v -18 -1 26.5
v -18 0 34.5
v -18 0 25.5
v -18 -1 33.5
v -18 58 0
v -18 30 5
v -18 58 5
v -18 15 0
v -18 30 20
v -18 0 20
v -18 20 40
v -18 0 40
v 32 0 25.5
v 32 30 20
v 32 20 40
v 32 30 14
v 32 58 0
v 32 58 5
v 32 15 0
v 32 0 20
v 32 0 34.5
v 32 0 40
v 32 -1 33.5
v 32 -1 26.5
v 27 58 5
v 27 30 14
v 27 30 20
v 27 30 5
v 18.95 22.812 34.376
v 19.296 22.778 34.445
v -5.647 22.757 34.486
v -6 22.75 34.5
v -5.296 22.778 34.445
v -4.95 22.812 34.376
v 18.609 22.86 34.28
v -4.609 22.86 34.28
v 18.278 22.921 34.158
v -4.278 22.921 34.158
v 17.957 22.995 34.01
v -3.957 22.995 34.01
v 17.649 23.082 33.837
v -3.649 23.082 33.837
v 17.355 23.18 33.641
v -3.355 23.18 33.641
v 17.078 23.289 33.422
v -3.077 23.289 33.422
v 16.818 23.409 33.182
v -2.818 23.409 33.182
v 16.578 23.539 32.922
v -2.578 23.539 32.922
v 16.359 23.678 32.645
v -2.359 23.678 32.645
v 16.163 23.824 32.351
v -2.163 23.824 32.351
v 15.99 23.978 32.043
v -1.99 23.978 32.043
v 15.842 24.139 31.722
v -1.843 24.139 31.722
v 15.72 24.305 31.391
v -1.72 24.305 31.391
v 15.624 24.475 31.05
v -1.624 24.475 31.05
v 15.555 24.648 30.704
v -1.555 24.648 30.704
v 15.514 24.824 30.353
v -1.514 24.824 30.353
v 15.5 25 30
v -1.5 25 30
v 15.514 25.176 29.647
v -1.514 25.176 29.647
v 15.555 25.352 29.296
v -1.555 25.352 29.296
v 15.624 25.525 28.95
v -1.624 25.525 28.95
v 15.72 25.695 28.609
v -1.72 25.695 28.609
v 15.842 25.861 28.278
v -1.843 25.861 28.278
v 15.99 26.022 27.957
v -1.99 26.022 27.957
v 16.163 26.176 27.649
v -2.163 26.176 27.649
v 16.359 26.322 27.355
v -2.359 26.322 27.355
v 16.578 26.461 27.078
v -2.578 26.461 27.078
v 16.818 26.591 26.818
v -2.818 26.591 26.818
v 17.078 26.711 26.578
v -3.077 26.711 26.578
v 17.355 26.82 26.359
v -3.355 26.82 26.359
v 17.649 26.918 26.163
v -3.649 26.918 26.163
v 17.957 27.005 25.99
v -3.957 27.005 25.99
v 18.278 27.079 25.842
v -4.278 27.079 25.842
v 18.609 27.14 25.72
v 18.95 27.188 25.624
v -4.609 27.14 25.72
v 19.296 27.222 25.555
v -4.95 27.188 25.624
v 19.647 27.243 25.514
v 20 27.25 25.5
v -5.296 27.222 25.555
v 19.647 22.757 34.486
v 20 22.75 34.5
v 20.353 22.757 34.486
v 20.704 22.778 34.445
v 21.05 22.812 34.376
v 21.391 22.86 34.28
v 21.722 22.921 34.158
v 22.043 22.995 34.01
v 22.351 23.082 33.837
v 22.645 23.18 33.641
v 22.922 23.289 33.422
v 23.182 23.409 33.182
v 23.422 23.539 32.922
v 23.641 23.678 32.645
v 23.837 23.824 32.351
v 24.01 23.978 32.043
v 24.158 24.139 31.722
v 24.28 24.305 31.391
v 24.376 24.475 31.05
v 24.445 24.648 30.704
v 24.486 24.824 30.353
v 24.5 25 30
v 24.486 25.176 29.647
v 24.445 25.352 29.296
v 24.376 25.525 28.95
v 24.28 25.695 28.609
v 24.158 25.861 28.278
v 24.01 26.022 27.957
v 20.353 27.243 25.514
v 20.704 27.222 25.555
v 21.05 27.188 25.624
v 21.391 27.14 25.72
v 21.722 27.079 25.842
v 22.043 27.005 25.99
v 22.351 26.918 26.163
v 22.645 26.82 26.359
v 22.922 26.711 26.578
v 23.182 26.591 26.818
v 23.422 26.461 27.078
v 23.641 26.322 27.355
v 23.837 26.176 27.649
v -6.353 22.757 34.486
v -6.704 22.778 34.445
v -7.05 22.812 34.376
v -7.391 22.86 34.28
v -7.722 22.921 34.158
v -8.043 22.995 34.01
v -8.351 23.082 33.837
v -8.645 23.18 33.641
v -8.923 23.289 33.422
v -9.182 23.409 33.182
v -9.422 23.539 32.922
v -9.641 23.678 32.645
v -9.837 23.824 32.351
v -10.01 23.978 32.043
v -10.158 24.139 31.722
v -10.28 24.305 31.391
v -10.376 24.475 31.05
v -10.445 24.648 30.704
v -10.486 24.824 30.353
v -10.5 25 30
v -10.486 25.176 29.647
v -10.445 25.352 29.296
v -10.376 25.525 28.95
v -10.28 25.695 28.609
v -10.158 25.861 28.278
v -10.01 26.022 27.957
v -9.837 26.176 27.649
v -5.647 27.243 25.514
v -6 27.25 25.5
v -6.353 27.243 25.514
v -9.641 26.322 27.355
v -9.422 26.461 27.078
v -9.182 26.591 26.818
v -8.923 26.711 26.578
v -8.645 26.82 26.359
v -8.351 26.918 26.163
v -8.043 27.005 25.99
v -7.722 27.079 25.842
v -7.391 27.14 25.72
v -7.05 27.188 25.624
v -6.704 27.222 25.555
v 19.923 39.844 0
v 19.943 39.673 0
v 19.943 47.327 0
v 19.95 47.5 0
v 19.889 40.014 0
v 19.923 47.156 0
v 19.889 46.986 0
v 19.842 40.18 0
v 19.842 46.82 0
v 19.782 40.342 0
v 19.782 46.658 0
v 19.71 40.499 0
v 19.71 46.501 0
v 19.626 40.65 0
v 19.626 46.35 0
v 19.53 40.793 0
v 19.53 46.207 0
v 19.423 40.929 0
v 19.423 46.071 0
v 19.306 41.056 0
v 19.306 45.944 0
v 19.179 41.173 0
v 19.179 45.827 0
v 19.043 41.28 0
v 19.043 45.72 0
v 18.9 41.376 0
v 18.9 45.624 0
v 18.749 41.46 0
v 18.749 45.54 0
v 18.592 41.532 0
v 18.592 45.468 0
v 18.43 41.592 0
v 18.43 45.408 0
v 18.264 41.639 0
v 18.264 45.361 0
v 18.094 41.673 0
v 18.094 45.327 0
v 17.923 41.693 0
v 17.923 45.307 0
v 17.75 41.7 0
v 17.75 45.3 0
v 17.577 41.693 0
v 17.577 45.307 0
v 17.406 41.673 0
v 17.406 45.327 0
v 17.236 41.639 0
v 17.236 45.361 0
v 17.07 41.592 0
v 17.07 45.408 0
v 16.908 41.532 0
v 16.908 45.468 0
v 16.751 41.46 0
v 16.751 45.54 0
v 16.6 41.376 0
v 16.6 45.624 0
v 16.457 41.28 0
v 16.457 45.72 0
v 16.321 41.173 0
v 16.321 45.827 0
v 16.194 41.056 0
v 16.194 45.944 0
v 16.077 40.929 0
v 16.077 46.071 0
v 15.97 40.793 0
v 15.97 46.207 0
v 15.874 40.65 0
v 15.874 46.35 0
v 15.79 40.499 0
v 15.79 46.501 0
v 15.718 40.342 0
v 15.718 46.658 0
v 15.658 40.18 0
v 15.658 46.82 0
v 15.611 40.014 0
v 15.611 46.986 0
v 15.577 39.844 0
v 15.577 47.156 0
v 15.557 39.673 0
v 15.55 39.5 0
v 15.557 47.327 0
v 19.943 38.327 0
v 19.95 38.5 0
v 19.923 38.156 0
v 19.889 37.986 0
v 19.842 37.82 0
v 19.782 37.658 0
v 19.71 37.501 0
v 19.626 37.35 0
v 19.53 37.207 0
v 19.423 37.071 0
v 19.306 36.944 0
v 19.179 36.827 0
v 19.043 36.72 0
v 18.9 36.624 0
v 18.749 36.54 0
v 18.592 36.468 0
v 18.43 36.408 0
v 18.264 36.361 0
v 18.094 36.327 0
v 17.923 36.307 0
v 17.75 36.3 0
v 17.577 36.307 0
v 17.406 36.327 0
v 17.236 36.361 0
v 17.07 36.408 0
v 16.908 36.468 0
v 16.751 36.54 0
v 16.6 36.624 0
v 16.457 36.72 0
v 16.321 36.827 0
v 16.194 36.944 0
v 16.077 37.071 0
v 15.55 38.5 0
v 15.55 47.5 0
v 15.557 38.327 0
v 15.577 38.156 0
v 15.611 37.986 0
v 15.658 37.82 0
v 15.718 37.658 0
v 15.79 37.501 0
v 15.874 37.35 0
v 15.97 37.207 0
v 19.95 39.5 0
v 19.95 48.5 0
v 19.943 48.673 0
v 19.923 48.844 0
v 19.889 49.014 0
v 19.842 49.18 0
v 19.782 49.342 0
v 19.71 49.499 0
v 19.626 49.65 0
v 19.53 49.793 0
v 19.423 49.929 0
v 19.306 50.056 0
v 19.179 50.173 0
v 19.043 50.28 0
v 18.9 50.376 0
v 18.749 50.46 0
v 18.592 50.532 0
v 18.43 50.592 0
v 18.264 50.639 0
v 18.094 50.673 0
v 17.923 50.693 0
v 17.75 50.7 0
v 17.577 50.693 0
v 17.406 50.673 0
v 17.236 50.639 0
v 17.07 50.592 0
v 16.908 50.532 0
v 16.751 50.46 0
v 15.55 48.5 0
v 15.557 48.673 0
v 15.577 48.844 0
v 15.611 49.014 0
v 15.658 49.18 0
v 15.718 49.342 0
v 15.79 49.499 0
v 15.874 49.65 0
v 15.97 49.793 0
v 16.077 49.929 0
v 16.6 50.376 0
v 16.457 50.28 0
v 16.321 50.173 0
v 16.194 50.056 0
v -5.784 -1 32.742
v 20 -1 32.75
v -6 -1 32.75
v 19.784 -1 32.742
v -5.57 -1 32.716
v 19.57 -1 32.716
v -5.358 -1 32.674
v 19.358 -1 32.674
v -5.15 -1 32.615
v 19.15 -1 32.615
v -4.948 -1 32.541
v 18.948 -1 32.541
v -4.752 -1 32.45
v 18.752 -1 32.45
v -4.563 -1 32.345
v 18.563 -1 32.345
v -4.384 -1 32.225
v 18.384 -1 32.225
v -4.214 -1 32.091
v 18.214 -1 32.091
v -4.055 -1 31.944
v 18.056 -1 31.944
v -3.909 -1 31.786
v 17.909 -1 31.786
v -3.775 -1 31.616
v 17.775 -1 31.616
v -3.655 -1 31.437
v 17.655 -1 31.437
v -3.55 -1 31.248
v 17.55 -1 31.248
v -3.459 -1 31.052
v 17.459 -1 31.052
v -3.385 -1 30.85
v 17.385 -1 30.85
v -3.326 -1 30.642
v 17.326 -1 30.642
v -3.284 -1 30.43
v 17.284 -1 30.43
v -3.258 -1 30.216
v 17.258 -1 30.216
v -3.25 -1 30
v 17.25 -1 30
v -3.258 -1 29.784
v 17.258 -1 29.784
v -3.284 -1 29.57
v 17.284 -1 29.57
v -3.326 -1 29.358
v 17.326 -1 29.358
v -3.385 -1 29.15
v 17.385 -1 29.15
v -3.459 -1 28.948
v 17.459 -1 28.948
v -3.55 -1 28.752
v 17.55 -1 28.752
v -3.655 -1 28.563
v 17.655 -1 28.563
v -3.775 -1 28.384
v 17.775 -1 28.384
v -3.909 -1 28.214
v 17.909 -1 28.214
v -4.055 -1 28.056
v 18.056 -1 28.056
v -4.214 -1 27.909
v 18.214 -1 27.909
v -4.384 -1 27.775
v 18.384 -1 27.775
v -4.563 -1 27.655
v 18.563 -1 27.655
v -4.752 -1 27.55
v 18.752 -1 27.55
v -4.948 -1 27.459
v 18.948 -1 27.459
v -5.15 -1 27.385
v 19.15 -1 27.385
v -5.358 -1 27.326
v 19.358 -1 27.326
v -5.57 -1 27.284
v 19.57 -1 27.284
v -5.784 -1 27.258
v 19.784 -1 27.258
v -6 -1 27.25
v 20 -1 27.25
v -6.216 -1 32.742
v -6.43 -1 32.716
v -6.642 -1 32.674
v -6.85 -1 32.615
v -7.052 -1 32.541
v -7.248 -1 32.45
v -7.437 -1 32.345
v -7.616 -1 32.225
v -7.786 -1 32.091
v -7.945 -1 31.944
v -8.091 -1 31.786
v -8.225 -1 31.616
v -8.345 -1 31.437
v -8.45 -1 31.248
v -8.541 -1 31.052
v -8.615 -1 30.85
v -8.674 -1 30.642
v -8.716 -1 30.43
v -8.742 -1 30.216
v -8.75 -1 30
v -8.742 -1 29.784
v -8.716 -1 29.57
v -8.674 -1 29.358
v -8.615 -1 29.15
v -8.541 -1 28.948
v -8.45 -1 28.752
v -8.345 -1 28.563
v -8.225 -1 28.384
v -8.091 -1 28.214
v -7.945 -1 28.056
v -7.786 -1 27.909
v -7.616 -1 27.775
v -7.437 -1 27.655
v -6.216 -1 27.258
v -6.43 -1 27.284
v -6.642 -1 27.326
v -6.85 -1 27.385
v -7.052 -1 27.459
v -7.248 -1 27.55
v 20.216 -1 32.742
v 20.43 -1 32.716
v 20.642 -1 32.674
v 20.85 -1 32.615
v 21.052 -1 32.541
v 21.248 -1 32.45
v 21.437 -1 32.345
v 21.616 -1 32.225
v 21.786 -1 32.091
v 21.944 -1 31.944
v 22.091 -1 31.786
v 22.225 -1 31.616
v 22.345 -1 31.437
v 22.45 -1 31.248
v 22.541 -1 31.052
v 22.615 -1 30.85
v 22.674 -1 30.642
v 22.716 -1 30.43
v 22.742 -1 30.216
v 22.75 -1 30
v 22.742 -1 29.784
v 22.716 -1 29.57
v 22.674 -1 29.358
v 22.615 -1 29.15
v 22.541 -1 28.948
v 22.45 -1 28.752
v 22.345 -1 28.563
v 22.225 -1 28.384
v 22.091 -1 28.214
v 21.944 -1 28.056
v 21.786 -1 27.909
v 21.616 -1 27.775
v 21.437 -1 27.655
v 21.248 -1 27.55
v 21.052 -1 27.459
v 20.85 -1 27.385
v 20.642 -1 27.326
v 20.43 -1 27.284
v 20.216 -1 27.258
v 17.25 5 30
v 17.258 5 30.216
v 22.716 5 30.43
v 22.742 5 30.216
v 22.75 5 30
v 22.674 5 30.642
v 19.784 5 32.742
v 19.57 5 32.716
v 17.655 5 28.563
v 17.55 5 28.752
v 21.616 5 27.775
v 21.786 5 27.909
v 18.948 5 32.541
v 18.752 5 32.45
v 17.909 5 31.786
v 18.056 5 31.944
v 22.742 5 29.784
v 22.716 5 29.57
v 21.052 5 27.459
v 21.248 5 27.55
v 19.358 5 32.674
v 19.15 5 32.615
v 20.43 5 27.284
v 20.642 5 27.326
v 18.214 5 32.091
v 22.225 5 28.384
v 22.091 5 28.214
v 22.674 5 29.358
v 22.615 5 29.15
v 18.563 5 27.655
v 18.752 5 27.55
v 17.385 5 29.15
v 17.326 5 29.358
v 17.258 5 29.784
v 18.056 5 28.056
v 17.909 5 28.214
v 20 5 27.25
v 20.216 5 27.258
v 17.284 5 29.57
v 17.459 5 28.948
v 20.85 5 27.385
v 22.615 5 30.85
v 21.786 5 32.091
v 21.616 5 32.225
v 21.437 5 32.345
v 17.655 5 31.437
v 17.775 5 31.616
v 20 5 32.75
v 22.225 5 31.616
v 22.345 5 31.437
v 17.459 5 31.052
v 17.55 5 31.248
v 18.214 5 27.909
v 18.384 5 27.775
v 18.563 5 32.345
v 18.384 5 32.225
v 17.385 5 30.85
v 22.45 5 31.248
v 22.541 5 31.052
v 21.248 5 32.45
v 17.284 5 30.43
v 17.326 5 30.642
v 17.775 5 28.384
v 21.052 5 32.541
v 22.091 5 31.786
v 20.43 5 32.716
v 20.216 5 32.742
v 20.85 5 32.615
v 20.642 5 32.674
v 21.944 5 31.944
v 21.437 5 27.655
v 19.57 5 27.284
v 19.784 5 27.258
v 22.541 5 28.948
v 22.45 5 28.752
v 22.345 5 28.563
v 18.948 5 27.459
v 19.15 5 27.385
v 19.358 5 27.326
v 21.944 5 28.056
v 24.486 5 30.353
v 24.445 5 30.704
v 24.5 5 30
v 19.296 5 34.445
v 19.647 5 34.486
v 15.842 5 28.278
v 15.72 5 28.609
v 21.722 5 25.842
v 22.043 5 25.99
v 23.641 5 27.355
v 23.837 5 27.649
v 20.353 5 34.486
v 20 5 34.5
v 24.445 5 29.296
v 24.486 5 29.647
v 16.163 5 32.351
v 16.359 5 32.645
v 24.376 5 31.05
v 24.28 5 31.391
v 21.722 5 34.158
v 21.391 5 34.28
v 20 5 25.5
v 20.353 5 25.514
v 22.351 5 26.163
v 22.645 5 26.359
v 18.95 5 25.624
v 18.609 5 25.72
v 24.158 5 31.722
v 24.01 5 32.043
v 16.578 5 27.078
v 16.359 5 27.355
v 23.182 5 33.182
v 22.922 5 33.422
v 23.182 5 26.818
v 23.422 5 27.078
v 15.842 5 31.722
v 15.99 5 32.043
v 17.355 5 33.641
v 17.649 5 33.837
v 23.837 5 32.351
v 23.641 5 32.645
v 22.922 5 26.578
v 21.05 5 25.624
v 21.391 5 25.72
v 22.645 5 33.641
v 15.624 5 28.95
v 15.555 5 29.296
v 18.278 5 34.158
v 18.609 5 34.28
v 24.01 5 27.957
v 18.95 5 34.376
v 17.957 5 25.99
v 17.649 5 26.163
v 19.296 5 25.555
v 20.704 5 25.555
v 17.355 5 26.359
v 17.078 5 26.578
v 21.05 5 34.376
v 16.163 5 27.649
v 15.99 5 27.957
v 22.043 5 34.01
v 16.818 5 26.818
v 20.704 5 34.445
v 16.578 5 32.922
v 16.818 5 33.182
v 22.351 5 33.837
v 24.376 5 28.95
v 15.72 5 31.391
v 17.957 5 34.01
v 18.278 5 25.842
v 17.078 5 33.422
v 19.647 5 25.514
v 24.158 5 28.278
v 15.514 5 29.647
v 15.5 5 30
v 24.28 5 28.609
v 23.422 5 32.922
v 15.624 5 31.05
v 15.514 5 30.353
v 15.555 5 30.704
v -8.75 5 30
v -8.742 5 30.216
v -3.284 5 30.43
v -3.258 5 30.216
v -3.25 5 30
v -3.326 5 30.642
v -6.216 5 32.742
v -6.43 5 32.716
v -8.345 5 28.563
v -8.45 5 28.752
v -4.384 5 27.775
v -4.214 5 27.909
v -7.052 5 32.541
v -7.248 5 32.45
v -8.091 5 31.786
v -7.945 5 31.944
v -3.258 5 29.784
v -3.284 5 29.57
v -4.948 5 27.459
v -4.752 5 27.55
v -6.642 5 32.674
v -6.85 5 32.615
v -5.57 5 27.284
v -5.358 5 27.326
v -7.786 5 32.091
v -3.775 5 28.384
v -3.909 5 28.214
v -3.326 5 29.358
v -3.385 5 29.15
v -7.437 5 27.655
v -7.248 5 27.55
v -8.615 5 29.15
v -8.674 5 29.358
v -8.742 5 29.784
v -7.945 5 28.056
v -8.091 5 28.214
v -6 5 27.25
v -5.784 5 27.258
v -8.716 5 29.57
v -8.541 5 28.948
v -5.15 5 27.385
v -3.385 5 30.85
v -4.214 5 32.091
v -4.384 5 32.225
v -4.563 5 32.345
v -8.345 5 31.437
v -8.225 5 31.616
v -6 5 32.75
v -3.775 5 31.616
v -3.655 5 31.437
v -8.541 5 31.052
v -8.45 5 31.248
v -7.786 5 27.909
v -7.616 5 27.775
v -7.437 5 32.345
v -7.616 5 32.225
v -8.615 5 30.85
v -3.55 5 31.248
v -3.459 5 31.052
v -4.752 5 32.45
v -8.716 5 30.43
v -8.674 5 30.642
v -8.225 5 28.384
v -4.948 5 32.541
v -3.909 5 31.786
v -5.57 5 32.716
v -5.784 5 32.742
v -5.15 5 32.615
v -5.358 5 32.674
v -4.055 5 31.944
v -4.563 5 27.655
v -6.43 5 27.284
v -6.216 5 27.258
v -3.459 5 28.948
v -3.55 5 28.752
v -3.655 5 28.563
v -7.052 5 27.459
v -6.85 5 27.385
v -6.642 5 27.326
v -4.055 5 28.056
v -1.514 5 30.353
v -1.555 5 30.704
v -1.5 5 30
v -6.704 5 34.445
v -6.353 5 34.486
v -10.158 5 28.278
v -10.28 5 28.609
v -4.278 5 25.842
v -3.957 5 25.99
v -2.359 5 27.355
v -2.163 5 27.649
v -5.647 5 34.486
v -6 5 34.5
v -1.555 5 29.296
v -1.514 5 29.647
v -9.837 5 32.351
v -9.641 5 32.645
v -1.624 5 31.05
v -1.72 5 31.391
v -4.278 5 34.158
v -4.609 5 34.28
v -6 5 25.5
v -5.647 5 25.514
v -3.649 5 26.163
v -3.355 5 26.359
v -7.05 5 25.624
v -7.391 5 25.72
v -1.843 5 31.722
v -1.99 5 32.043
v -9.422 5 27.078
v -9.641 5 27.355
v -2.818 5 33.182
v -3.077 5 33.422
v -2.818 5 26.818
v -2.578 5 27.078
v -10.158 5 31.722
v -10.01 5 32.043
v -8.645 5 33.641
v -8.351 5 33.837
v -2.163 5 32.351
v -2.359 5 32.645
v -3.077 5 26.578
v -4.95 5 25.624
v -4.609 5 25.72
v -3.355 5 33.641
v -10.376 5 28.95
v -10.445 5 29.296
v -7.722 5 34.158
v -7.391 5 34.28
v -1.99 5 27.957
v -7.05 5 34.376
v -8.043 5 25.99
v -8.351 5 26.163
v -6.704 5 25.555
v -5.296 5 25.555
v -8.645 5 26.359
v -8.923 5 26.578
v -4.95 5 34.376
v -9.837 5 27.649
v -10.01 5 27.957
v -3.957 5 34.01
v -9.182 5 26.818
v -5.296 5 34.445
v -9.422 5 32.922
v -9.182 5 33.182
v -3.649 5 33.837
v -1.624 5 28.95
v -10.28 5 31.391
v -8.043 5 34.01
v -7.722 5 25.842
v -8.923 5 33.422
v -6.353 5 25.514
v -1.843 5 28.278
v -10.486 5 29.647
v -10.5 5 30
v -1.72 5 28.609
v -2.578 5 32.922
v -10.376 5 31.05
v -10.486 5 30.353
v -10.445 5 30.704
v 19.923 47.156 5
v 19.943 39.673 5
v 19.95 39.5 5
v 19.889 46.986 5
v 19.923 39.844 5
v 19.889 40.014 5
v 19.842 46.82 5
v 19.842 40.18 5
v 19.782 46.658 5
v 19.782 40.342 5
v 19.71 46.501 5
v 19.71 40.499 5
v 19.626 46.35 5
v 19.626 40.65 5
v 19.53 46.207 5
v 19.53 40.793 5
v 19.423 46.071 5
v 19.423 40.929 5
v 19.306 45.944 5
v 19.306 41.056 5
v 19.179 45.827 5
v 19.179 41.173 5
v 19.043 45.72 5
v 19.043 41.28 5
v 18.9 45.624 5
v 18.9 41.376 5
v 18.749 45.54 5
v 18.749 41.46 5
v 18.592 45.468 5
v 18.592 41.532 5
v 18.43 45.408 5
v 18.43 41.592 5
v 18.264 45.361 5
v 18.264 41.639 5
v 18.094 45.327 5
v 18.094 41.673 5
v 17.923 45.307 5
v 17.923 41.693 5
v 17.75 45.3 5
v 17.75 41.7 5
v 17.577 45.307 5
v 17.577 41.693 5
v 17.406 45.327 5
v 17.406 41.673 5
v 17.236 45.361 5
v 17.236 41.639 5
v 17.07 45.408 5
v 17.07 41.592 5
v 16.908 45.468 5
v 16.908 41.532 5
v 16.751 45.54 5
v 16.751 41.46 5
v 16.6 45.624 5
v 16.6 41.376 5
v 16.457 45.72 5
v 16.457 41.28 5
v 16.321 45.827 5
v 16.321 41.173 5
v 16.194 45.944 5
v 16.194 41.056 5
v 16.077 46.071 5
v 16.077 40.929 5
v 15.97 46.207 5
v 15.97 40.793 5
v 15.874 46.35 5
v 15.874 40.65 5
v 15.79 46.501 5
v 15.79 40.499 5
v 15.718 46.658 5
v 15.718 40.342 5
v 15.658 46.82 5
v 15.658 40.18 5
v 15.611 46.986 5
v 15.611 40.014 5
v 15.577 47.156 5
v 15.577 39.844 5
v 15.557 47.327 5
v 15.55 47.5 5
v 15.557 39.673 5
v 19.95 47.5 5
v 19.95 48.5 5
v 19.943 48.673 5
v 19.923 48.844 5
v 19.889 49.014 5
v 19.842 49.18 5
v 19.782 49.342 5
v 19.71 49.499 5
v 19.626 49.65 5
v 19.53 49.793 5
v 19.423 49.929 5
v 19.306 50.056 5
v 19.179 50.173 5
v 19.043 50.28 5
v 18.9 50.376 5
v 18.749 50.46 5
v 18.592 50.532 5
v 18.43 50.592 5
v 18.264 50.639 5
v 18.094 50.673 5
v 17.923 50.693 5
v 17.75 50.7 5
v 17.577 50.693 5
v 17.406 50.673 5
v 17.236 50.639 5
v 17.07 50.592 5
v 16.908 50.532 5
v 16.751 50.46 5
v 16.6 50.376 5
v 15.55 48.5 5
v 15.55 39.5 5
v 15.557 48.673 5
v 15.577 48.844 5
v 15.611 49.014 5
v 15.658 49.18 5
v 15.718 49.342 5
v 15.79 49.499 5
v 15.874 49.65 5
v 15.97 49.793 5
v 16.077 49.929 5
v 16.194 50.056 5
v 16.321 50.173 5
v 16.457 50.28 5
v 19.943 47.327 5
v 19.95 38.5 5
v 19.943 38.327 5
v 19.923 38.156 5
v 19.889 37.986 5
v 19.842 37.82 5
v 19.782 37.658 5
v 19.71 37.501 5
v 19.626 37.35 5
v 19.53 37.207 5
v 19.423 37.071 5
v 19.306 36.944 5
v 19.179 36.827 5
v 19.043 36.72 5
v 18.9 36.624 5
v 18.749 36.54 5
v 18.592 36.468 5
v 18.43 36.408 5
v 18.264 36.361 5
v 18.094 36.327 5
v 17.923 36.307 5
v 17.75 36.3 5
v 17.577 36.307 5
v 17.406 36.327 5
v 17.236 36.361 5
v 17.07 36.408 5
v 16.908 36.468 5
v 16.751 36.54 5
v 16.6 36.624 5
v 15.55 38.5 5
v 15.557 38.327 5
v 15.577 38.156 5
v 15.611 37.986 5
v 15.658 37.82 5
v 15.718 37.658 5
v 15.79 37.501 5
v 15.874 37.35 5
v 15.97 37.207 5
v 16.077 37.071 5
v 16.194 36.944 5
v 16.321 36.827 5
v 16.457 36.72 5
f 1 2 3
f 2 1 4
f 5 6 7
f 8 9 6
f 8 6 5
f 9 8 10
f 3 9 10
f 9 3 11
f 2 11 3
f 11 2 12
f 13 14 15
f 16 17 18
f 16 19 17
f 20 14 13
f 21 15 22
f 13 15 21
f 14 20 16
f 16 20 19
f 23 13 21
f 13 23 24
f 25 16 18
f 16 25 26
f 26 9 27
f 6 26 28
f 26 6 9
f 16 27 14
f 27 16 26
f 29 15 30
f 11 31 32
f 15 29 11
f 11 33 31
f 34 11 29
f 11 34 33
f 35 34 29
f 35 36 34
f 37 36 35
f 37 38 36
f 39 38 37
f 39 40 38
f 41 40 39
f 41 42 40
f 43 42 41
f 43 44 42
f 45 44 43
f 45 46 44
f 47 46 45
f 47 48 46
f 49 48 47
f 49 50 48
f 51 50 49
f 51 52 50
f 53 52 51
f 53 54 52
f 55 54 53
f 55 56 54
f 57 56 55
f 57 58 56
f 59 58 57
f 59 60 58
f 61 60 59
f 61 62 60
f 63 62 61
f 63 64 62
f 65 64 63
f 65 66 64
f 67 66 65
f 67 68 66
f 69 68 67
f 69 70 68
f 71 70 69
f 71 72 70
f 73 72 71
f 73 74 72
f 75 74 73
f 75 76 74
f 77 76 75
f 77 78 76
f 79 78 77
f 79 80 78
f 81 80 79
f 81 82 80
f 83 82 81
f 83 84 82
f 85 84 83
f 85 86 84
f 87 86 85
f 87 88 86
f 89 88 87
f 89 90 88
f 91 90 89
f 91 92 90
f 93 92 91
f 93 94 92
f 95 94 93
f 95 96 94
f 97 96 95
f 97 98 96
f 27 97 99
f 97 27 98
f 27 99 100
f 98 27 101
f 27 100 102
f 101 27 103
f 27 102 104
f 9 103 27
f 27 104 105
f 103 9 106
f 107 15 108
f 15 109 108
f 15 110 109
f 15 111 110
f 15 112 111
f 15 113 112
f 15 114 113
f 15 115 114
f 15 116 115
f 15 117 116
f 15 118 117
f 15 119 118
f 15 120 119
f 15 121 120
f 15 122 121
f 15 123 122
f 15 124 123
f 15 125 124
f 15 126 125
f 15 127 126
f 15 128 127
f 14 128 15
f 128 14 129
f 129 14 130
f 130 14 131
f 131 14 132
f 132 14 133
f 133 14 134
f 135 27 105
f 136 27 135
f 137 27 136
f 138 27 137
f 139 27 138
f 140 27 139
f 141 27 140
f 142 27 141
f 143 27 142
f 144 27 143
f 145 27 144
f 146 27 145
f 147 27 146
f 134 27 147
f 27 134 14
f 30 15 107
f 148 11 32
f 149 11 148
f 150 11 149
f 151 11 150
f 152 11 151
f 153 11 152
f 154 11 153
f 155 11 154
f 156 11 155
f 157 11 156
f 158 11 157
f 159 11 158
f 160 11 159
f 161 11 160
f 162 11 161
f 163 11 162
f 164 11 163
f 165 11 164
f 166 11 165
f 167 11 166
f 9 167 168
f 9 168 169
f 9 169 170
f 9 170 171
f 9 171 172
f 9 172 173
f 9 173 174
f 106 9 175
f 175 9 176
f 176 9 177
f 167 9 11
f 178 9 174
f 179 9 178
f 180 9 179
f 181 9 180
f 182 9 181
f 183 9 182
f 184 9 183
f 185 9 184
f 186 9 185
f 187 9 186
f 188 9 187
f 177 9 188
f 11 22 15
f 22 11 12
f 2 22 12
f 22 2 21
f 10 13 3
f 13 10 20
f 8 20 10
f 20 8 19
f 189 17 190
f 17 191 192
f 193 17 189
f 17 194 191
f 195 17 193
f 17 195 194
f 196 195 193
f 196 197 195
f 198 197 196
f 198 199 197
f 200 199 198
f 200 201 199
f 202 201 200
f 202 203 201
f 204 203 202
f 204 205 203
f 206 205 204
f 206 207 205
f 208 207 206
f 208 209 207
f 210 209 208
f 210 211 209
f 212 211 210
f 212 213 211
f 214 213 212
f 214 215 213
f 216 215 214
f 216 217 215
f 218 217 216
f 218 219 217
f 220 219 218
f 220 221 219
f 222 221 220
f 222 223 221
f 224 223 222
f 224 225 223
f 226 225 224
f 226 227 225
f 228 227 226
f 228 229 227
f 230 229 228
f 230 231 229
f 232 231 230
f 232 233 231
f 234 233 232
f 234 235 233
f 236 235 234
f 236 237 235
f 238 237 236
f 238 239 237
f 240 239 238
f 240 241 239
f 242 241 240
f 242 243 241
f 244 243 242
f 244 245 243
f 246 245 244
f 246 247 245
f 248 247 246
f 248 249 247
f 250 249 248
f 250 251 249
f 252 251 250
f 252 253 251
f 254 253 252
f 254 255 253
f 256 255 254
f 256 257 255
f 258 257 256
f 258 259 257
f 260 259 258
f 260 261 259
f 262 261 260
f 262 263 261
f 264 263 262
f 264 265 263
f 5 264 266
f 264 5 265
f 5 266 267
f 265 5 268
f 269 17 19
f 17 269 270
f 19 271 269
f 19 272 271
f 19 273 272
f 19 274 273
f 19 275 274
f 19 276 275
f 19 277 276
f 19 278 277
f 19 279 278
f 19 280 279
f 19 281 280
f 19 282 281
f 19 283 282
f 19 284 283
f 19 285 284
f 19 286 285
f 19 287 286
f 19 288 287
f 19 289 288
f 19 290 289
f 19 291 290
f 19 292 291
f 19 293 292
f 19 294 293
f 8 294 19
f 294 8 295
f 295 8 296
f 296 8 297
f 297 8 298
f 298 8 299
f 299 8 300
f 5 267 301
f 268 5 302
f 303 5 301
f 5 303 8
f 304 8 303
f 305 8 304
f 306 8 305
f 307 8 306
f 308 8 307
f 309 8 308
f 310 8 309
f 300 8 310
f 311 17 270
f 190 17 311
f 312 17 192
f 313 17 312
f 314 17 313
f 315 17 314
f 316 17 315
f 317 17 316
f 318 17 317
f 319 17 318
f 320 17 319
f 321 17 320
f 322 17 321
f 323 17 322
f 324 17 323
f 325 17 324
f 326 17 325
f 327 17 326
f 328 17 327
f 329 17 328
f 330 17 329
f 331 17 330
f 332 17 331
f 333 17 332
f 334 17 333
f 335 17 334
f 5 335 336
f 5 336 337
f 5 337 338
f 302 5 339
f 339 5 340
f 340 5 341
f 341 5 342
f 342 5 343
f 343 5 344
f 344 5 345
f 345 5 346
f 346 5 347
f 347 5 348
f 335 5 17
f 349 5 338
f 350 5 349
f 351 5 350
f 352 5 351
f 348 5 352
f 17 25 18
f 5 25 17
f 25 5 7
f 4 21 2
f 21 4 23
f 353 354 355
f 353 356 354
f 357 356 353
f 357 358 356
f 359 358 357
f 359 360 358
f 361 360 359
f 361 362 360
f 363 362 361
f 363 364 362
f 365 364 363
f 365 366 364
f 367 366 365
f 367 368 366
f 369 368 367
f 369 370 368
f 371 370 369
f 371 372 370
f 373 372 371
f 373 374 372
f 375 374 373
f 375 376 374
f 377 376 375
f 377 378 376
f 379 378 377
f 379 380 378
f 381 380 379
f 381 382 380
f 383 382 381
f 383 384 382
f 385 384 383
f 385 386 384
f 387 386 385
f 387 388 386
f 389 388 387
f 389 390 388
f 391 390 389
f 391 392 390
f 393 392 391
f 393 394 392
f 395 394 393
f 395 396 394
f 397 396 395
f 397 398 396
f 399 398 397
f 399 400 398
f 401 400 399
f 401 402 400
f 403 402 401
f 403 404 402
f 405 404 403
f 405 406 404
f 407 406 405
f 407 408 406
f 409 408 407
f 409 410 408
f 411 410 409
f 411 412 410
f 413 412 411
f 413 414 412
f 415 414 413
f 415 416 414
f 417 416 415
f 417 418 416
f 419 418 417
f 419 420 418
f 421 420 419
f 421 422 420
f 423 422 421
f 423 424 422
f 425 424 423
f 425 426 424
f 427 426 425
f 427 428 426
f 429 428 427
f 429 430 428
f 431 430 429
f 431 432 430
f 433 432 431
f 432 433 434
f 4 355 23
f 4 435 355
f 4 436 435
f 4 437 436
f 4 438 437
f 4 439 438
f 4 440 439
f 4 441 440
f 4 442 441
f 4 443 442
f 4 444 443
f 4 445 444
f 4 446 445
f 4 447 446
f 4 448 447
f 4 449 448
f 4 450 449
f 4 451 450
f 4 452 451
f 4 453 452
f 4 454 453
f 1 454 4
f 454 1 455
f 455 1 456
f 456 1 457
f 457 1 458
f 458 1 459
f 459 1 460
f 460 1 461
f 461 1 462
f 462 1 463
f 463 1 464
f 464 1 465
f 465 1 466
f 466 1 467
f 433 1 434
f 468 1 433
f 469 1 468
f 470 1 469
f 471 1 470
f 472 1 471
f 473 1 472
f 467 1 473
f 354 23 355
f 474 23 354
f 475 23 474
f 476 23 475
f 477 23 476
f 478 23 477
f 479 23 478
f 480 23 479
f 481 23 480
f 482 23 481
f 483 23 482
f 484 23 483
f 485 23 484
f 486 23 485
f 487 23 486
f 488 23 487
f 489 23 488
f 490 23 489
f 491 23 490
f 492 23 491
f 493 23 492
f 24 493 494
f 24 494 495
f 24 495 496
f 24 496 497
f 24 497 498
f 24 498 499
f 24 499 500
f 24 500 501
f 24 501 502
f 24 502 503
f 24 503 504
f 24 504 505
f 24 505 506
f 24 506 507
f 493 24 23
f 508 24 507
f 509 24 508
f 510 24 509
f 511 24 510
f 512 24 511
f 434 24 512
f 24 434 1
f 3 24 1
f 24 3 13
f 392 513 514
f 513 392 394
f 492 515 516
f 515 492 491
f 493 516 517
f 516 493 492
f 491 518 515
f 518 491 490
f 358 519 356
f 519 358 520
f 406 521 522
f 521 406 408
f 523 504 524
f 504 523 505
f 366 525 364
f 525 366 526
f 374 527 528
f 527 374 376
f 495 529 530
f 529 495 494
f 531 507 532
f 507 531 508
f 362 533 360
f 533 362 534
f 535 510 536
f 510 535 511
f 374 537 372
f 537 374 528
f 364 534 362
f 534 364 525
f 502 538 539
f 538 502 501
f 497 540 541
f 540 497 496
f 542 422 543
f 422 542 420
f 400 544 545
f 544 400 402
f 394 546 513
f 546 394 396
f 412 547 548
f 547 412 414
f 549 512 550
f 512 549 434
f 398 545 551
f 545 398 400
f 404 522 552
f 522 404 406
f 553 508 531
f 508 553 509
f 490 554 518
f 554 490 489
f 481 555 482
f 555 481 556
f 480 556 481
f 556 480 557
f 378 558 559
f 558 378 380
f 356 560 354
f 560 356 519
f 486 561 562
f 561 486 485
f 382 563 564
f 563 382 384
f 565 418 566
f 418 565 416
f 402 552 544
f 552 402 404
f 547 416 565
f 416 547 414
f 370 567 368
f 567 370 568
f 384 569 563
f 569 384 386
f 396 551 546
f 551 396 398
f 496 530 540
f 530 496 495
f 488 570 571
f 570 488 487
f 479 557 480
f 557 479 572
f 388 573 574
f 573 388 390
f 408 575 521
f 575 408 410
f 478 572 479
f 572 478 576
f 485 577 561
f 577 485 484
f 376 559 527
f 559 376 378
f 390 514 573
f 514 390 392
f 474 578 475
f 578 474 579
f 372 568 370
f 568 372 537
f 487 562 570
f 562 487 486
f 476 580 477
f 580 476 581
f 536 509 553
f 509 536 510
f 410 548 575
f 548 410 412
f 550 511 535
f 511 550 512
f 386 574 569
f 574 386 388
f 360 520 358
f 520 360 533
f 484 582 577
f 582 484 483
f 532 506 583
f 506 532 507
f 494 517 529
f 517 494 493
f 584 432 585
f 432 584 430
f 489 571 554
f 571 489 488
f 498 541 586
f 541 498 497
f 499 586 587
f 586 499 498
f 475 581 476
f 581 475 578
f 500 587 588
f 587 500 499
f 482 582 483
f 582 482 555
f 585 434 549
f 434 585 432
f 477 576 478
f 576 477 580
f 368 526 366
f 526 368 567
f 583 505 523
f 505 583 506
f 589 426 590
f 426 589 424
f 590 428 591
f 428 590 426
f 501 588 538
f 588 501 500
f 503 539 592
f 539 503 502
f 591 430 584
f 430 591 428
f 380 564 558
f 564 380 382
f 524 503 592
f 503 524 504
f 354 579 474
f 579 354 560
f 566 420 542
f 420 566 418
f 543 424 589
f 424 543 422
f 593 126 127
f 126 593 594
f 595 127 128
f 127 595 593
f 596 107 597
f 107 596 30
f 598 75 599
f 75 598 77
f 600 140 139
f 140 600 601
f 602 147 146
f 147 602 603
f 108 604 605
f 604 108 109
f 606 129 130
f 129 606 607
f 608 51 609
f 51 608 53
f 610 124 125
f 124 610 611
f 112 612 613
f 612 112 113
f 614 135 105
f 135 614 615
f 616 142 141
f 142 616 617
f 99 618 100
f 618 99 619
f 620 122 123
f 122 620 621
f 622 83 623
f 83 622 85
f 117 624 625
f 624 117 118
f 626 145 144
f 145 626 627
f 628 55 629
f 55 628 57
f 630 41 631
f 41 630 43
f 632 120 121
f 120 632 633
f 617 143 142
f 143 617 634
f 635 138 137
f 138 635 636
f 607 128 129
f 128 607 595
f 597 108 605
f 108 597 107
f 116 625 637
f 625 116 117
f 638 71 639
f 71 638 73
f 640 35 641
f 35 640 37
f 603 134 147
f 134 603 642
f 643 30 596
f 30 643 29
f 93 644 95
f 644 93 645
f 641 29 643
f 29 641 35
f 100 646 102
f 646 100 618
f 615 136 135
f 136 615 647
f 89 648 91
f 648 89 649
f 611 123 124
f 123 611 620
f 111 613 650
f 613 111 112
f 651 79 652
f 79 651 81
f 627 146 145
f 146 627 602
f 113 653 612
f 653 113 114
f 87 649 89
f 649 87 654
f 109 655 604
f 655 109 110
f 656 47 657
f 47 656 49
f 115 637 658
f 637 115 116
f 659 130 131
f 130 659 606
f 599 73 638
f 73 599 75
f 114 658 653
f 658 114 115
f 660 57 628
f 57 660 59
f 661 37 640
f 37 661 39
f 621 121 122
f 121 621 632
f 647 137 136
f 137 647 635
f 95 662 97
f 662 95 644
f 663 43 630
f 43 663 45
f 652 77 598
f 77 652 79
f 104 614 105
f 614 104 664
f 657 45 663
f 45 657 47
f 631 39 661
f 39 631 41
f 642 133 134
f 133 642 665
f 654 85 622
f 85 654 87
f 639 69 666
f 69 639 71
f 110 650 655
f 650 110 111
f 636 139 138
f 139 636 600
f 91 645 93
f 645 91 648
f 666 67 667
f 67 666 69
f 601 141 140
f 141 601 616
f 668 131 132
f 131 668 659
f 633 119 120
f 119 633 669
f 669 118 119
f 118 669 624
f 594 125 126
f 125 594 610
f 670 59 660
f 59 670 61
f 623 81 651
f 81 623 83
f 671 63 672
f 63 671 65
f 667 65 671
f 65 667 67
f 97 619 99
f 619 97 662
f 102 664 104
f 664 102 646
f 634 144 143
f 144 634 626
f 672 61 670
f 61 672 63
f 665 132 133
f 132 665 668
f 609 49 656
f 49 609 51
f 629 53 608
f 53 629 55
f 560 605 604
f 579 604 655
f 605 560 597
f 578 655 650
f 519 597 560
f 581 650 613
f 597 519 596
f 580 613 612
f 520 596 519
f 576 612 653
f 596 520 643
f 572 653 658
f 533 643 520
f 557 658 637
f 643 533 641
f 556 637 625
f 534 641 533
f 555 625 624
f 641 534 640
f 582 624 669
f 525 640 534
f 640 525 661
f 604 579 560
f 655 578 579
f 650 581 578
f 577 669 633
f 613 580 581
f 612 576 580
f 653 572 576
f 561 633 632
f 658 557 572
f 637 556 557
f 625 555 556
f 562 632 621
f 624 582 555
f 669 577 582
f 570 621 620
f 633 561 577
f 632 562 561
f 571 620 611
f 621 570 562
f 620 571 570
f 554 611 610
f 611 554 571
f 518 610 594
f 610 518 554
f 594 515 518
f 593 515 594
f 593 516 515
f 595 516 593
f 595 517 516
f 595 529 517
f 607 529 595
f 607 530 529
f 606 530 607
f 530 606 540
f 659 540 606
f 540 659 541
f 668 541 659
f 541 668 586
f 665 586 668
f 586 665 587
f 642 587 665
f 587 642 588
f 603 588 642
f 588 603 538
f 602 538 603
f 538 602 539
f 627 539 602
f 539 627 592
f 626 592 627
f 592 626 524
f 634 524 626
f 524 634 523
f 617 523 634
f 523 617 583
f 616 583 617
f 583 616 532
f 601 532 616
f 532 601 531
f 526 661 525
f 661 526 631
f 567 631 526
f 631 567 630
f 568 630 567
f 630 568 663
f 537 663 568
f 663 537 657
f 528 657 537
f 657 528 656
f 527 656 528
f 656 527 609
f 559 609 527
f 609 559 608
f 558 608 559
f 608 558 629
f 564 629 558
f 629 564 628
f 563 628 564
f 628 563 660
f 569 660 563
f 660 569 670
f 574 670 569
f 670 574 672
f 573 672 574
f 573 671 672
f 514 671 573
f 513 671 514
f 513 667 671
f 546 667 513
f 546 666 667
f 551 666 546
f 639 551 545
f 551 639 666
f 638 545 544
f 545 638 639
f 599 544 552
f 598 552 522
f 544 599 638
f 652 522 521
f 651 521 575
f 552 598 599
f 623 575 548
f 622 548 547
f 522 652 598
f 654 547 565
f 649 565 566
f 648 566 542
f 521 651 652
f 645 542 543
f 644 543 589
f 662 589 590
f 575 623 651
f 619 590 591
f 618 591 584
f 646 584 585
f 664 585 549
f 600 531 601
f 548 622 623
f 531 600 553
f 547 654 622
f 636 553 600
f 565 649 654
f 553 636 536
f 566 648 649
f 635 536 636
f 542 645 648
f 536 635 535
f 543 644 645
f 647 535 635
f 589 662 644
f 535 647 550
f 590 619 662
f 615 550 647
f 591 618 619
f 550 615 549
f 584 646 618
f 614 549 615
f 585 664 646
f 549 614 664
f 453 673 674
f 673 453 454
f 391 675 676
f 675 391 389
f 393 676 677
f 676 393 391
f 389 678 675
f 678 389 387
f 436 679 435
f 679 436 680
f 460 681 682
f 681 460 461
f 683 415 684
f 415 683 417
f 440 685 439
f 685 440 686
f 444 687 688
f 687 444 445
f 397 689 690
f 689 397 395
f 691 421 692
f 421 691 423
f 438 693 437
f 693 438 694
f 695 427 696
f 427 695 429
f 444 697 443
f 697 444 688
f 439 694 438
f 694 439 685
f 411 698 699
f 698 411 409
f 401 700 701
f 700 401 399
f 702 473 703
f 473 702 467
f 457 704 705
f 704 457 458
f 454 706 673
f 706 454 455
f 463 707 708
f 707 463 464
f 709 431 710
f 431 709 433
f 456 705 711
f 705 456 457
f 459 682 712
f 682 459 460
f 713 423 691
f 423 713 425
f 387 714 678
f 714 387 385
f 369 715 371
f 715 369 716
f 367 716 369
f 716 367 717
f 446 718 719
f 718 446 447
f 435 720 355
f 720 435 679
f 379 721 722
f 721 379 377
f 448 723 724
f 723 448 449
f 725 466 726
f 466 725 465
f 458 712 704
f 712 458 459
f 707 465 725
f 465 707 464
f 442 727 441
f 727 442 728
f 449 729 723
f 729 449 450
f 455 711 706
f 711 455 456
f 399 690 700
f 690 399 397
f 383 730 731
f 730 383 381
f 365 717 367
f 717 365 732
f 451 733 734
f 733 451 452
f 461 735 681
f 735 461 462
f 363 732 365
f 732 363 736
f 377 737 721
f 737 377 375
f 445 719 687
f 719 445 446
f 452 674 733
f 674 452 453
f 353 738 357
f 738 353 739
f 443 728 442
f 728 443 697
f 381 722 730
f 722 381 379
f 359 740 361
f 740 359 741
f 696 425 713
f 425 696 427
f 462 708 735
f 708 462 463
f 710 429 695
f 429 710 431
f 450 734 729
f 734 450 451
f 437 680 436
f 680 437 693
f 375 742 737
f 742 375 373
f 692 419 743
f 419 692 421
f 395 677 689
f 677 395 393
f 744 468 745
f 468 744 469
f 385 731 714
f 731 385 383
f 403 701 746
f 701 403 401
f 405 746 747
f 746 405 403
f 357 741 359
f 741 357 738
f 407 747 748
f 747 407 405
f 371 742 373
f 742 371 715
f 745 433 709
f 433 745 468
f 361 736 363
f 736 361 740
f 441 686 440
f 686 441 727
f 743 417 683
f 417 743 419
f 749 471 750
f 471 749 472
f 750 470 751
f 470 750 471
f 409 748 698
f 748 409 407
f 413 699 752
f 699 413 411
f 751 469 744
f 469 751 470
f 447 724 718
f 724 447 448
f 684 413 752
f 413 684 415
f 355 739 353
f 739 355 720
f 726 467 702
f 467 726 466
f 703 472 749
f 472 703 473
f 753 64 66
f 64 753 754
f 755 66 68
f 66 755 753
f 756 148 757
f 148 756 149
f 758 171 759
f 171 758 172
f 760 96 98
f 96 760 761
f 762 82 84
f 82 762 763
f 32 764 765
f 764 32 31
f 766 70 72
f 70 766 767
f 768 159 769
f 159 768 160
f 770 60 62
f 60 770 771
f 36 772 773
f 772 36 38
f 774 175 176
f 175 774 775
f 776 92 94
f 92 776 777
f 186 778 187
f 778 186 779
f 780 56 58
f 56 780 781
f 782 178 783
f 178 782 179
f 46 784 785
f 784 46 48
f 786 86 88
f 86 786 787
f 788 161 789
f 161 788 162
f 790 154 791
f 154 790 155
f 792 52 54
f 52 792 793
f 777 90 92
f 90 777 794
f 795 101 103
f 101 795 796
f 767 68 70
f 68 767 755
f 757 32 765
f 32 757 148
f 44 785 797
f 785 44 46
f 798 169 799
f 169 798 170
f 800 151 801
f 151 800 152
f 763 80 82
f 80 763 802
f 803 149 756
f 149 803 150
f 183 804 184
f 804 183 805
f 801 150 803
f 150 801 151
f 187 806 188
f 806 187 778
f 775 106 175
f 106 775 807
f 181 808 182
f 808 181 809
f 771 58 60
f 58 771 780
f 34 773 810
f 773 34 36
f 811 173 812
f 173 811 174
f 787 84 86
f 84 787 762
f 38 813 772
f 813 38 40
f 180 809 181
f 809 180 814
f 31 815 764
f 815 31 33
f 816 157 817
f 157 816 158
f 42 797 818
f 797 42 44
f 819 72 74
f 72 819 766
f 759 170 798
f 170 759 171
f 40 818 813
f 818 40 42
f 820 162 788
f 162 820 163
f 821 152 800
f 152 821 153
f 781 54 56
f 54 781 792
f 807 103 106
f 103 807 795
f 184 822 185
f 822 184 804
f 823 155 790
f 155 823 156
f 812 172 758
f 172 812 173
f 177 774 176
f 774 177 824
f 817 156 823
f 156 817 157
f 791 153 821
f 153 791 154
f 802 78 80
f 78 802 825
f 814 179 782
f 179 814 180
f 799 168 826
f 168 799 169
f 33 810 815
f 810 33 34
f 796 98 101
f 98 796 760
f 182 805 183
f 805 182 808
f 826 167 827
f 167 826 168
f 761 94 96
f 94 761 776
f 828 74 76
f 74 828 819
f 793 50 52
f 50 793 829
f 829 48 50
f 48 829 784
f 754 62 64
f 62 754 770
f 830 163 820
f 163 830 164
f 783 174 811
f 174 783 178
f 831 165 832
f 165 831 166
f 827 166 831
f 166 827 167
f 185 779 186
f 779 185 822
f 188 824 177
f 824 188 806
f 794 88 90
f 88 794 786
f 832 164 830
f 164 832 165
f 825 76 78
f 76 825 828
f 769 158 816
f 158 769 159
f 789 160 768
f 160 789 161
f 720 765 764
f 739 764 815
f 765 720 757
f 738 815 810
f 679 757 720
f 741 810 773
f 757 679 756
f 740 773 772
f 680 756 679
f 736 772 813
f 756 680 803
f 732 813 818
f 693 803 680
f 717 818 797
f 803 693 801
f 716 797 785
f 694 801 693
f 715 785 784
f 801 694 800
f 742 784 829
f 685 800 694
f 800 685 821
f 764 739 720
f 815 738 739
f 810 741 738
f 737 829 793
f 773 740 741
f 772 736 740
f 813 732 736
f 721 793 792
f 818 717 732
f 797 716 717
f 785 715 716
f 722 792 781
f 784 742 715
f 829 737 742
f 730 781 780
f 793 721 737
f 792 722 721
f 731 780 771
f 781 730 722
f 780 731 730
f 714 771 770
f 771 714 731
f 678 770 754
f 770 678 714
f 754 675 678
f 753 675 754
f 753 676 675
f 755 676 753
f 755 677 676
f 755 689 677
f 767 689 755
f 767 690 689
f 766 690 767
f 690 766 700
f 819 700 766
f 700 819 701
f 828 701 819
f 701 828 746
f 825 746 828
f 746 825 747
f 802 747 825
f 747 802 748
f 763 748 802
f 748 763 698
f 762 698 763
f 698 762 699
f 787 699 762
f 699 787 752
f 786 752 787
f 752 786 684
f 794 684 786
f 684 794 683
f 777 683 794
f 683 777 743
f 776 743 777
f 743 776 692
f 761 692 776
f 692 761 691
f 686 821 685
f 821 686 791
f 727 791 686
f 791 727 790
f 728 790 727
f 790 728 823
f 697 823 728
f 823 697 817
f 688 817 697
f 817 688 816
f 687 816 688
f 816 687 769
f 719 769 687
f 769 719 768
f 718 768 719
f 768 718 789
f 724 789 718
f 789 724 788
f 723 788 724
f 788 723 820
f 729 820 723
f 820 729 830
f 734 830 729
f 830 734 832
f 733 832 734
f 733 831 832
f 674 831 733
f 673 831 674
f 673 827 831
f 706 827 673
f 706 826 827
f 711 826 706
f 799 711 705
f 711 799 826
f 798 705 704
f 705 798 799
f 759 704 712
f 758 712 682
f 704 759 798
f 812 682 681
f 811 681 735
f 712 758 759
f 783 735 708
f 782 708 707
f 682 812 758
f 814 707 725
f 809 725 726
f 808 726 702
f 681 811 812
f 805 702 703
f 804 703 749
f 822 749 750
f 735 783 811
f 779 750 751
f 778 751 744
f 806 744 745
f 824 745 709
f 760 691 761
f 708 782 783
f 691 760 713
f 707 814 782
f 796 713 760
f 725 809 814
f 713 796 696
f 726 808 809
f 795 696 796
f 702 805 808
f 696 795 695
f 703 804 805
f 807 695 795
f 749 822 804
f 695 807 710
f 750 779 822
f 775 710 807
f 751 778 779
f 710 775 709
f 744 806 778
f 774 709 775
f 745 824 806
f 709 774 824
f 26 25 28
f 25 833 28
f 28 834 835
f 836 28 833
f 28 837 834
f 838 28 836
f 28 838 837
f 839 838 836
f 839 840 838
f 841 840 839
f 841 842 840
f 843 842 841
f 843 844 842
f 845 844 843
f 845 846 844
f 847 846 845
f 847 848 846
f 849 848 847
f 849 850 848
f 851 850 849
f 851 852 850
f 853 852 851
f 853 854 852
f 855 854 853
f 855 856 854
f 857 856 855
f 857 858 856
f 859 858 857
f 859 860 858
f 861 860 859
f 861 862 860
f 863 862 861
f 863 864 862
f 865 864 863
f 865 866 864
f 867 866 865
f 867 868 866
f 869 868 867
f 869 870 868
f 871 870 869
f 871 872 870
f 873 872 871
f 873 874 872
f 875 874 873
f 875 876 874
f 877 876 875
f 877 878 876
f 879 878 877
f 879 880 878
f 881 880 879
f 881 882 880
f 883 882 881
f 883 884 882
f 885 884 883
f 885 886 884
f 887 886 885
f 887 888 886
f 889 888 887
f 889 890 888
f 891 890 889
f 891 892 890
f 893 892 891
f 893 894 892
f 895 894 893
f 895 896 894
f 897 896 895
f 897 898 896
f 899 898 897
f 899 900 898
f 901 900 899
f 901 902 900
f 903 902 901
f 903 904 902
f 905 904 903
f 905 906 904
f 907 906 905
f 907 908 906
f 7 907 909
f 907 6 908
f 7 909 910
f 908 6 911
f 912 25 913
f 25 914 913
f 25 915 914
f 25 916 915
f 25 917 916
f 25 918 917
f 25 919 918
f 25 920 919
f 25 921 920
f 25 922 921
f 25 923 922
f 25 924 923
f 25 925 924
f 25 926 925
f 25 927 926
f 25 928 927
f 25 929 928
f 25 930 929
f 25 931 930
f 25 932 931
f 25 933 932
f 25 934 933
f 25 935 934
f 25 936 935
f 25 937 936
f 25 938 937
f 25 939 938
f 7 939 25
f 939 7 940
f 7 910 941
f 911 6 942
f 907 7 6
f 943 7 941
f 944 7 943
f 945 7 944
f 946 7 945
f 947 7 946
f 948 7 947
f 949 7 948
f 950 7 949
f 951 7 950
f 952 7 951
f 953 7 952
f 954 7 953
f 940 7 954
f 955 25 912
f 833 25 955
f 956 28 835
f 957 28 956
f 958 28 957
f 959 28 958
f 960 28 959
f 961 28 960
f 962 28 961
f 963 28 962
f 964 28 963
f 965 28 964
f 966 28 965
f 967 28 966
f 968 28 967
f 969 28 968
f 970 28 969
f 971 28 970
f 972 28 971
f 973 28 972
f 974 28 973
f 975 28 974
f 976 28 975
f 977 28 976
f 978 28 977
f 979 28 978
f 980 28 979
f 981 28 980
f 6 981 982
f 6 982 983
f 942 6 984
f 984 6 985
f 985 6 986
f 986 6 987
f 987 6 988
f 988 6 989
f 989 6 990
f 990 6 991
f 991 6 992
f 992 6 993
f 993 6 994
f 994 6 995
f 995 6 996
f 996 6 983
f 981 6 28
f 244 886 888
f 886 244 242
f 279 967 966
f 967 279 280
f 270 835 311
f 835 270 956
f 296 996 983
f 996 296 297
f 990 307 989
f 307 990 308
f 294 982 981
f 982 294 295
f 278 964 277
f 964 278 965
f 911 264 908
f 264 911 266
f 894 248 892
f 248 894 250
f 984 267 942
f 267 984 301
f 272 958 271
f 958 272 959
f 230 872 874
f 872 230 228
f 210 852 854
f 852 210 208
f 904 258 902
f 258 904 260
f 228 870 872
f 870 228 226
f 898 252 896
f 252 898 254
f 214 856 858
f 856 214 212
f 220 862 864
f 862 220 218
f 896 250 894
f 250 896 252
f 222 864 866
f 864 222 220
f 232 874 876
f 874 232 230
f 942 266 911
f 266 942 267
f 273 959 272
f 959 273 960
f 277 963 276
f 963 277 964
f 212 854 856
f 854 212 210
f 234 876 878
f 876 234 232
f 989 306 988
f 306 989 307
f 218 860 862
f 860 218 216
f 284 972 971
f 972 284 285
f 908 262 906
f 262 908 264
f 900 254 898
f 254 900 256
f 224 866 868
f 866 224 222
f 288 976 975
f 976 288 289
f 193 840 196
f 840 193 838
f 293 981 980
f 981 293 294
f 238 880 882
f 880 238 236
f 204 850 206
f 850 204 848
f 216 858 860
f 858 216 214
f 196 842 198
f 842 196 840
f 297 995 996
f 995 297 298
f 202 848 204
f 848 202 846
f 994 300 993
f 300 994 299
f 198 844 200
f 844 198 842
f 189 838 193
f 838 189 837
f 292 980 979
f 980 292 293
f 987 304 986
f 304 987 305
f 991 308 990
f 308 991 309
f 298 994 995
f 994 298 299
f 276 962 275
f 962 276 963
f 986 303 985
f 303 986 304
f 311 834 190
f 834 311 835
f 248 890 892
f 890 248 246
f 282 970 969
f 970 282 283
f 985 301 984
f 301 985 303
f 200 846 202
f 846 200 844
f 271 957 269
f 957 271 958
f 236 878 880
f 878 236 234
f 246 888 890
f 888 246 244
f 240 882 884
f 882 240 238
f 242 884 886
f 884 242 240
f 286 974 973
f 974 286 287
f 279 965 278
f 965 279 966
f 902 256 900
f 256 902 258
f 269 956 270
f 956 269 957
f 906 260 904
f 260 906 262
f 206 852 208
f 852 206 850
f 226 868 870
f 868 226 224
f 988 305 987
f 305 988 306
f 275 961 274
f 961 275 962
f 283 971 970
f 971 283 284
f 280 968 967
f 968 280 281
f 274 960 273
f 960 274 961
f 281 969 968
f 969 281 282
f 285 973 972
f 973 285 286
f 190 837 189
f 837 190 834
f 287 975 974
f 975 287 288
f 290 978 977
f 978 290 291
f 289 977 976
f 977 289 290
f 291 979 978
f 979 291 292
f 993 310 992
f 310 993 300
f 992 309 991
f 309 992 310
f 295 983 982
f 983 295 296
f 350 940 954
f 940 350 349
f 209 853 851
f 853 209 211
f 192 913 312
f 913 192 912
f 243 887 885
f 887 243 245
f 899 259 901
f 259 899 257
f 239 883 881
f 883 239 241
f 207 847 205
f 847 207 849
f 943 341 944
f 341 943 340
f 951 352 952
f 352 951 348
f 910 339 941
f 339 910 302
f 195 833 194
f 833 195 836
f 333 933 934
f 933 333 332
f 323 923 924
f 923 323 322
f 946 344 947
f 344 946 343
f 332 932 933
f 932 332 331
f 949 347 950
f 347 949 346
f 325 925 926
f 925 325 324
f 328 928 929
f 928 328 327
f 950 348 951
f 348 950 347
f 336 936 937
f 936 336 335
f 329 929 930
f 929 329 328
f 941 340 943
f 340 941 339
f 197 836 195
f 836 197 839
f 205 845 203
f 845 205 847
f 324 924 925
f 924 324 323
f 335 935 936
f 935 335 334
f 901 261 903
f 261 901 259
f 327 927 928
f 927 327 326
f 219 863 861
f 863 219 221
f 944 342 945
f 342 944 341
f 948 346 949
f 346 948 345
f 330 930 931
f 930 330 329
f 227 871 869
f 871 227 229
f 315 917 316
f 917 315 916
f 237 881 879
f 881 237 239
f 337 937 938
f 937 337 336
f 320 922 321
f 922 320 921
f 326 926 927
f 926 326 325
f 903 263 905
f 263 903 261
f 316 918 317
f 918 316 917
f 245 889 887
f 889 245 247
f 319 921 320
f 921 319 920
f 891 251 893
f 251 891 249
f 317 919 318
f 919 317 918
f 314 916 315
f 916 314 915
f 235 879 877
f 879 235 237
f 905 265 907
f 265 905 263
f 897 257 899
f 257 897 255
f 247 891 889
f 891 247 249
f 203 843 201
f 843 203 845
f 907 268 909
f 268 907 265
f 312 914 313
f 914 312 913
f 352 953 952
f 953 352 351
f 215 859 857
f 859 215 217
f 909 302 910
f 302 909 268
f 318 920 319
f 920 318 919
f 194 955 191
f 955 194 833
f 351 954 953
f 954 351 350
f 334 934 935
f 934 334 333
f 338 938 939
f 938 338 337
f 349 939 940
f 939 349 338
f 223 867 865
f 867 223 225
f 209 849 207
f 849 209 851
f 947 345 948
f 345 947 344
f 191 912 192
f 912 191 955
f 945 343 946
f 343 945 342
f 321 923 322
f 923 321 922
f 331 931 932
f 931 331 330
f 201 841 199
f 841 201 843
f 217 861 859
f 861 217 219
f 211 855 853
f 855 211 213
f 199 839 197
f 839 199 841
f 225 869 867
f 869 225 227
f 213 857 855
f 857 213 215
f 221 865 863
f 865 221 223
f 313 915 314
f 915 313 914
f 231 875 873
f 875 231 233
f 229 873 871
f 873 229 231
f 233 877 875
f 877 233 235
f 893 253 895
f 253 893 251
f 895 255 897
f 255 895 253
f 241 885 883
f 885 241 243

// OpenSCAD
$fn=80;

ht = 30;

new();

module new() {
   difference() {
      union() {
         translate([-18,0,0]) rotate([90,0,90])
            linear_extrude(height=50)
            polygon(points=[[0,20],[0,40],[20,40],[ht,20],[ht,14],[ht+28,5],[ht+28,0],[15,0]]);
         /* angled bit to fit in v-slot */
         translate([-18,0,25.5]) rotate([0,-90,180])
            linear_extrude(height=50)
            polygon(points=[[-0.1,0],[0,0],[1,1],[8,1],[9,0],[9,-0.1]]);
      }

      // translate([18,28,-0.5]) cylinder(d=4.4,h=10);
      translate([-18.1,ht,5]) cube([45.1,50,30]);
      hull() {
         translate([17.75,ht+8.5,-0.5]) cylinder(d=4.4,h=20);
         translate([17.75,ht+9.5,-0.5]) cylinder(d=4.4,h=20);
      }
      hull() {
         translate([17.75,ht+17.5,-0.5]) cylinder(d=4.4,h=20);
         translate([17.75,ht+18.5,-0.5]) cylinder(d=4.4,h=20);
      }

      /* TODO: MAKE SURE HOLES ARE CORRECT DEPTH. */
      translate([20,15,30]) rotate([90,0,0]) {
         /* bolt holes */
         translate([0,0,14-4.8]) cylinder(h=15,d=5.5);

         /* cap holes (with a little gap to allow bridging */
         translate([0,0,-20]) cylinder(h=30,d=9);
      }
      translate([-6,15,30]) rotate([90,0,0]) {
         /* bolt holes */
         translate([0,0,14-4.8]) cylinder(h=15,d=5.5);
   
         /* cap holes (with a little gap to allow bridging */
         translate([0,0,-20]) cylinder(h=30,d=9);
      }
   }
}
